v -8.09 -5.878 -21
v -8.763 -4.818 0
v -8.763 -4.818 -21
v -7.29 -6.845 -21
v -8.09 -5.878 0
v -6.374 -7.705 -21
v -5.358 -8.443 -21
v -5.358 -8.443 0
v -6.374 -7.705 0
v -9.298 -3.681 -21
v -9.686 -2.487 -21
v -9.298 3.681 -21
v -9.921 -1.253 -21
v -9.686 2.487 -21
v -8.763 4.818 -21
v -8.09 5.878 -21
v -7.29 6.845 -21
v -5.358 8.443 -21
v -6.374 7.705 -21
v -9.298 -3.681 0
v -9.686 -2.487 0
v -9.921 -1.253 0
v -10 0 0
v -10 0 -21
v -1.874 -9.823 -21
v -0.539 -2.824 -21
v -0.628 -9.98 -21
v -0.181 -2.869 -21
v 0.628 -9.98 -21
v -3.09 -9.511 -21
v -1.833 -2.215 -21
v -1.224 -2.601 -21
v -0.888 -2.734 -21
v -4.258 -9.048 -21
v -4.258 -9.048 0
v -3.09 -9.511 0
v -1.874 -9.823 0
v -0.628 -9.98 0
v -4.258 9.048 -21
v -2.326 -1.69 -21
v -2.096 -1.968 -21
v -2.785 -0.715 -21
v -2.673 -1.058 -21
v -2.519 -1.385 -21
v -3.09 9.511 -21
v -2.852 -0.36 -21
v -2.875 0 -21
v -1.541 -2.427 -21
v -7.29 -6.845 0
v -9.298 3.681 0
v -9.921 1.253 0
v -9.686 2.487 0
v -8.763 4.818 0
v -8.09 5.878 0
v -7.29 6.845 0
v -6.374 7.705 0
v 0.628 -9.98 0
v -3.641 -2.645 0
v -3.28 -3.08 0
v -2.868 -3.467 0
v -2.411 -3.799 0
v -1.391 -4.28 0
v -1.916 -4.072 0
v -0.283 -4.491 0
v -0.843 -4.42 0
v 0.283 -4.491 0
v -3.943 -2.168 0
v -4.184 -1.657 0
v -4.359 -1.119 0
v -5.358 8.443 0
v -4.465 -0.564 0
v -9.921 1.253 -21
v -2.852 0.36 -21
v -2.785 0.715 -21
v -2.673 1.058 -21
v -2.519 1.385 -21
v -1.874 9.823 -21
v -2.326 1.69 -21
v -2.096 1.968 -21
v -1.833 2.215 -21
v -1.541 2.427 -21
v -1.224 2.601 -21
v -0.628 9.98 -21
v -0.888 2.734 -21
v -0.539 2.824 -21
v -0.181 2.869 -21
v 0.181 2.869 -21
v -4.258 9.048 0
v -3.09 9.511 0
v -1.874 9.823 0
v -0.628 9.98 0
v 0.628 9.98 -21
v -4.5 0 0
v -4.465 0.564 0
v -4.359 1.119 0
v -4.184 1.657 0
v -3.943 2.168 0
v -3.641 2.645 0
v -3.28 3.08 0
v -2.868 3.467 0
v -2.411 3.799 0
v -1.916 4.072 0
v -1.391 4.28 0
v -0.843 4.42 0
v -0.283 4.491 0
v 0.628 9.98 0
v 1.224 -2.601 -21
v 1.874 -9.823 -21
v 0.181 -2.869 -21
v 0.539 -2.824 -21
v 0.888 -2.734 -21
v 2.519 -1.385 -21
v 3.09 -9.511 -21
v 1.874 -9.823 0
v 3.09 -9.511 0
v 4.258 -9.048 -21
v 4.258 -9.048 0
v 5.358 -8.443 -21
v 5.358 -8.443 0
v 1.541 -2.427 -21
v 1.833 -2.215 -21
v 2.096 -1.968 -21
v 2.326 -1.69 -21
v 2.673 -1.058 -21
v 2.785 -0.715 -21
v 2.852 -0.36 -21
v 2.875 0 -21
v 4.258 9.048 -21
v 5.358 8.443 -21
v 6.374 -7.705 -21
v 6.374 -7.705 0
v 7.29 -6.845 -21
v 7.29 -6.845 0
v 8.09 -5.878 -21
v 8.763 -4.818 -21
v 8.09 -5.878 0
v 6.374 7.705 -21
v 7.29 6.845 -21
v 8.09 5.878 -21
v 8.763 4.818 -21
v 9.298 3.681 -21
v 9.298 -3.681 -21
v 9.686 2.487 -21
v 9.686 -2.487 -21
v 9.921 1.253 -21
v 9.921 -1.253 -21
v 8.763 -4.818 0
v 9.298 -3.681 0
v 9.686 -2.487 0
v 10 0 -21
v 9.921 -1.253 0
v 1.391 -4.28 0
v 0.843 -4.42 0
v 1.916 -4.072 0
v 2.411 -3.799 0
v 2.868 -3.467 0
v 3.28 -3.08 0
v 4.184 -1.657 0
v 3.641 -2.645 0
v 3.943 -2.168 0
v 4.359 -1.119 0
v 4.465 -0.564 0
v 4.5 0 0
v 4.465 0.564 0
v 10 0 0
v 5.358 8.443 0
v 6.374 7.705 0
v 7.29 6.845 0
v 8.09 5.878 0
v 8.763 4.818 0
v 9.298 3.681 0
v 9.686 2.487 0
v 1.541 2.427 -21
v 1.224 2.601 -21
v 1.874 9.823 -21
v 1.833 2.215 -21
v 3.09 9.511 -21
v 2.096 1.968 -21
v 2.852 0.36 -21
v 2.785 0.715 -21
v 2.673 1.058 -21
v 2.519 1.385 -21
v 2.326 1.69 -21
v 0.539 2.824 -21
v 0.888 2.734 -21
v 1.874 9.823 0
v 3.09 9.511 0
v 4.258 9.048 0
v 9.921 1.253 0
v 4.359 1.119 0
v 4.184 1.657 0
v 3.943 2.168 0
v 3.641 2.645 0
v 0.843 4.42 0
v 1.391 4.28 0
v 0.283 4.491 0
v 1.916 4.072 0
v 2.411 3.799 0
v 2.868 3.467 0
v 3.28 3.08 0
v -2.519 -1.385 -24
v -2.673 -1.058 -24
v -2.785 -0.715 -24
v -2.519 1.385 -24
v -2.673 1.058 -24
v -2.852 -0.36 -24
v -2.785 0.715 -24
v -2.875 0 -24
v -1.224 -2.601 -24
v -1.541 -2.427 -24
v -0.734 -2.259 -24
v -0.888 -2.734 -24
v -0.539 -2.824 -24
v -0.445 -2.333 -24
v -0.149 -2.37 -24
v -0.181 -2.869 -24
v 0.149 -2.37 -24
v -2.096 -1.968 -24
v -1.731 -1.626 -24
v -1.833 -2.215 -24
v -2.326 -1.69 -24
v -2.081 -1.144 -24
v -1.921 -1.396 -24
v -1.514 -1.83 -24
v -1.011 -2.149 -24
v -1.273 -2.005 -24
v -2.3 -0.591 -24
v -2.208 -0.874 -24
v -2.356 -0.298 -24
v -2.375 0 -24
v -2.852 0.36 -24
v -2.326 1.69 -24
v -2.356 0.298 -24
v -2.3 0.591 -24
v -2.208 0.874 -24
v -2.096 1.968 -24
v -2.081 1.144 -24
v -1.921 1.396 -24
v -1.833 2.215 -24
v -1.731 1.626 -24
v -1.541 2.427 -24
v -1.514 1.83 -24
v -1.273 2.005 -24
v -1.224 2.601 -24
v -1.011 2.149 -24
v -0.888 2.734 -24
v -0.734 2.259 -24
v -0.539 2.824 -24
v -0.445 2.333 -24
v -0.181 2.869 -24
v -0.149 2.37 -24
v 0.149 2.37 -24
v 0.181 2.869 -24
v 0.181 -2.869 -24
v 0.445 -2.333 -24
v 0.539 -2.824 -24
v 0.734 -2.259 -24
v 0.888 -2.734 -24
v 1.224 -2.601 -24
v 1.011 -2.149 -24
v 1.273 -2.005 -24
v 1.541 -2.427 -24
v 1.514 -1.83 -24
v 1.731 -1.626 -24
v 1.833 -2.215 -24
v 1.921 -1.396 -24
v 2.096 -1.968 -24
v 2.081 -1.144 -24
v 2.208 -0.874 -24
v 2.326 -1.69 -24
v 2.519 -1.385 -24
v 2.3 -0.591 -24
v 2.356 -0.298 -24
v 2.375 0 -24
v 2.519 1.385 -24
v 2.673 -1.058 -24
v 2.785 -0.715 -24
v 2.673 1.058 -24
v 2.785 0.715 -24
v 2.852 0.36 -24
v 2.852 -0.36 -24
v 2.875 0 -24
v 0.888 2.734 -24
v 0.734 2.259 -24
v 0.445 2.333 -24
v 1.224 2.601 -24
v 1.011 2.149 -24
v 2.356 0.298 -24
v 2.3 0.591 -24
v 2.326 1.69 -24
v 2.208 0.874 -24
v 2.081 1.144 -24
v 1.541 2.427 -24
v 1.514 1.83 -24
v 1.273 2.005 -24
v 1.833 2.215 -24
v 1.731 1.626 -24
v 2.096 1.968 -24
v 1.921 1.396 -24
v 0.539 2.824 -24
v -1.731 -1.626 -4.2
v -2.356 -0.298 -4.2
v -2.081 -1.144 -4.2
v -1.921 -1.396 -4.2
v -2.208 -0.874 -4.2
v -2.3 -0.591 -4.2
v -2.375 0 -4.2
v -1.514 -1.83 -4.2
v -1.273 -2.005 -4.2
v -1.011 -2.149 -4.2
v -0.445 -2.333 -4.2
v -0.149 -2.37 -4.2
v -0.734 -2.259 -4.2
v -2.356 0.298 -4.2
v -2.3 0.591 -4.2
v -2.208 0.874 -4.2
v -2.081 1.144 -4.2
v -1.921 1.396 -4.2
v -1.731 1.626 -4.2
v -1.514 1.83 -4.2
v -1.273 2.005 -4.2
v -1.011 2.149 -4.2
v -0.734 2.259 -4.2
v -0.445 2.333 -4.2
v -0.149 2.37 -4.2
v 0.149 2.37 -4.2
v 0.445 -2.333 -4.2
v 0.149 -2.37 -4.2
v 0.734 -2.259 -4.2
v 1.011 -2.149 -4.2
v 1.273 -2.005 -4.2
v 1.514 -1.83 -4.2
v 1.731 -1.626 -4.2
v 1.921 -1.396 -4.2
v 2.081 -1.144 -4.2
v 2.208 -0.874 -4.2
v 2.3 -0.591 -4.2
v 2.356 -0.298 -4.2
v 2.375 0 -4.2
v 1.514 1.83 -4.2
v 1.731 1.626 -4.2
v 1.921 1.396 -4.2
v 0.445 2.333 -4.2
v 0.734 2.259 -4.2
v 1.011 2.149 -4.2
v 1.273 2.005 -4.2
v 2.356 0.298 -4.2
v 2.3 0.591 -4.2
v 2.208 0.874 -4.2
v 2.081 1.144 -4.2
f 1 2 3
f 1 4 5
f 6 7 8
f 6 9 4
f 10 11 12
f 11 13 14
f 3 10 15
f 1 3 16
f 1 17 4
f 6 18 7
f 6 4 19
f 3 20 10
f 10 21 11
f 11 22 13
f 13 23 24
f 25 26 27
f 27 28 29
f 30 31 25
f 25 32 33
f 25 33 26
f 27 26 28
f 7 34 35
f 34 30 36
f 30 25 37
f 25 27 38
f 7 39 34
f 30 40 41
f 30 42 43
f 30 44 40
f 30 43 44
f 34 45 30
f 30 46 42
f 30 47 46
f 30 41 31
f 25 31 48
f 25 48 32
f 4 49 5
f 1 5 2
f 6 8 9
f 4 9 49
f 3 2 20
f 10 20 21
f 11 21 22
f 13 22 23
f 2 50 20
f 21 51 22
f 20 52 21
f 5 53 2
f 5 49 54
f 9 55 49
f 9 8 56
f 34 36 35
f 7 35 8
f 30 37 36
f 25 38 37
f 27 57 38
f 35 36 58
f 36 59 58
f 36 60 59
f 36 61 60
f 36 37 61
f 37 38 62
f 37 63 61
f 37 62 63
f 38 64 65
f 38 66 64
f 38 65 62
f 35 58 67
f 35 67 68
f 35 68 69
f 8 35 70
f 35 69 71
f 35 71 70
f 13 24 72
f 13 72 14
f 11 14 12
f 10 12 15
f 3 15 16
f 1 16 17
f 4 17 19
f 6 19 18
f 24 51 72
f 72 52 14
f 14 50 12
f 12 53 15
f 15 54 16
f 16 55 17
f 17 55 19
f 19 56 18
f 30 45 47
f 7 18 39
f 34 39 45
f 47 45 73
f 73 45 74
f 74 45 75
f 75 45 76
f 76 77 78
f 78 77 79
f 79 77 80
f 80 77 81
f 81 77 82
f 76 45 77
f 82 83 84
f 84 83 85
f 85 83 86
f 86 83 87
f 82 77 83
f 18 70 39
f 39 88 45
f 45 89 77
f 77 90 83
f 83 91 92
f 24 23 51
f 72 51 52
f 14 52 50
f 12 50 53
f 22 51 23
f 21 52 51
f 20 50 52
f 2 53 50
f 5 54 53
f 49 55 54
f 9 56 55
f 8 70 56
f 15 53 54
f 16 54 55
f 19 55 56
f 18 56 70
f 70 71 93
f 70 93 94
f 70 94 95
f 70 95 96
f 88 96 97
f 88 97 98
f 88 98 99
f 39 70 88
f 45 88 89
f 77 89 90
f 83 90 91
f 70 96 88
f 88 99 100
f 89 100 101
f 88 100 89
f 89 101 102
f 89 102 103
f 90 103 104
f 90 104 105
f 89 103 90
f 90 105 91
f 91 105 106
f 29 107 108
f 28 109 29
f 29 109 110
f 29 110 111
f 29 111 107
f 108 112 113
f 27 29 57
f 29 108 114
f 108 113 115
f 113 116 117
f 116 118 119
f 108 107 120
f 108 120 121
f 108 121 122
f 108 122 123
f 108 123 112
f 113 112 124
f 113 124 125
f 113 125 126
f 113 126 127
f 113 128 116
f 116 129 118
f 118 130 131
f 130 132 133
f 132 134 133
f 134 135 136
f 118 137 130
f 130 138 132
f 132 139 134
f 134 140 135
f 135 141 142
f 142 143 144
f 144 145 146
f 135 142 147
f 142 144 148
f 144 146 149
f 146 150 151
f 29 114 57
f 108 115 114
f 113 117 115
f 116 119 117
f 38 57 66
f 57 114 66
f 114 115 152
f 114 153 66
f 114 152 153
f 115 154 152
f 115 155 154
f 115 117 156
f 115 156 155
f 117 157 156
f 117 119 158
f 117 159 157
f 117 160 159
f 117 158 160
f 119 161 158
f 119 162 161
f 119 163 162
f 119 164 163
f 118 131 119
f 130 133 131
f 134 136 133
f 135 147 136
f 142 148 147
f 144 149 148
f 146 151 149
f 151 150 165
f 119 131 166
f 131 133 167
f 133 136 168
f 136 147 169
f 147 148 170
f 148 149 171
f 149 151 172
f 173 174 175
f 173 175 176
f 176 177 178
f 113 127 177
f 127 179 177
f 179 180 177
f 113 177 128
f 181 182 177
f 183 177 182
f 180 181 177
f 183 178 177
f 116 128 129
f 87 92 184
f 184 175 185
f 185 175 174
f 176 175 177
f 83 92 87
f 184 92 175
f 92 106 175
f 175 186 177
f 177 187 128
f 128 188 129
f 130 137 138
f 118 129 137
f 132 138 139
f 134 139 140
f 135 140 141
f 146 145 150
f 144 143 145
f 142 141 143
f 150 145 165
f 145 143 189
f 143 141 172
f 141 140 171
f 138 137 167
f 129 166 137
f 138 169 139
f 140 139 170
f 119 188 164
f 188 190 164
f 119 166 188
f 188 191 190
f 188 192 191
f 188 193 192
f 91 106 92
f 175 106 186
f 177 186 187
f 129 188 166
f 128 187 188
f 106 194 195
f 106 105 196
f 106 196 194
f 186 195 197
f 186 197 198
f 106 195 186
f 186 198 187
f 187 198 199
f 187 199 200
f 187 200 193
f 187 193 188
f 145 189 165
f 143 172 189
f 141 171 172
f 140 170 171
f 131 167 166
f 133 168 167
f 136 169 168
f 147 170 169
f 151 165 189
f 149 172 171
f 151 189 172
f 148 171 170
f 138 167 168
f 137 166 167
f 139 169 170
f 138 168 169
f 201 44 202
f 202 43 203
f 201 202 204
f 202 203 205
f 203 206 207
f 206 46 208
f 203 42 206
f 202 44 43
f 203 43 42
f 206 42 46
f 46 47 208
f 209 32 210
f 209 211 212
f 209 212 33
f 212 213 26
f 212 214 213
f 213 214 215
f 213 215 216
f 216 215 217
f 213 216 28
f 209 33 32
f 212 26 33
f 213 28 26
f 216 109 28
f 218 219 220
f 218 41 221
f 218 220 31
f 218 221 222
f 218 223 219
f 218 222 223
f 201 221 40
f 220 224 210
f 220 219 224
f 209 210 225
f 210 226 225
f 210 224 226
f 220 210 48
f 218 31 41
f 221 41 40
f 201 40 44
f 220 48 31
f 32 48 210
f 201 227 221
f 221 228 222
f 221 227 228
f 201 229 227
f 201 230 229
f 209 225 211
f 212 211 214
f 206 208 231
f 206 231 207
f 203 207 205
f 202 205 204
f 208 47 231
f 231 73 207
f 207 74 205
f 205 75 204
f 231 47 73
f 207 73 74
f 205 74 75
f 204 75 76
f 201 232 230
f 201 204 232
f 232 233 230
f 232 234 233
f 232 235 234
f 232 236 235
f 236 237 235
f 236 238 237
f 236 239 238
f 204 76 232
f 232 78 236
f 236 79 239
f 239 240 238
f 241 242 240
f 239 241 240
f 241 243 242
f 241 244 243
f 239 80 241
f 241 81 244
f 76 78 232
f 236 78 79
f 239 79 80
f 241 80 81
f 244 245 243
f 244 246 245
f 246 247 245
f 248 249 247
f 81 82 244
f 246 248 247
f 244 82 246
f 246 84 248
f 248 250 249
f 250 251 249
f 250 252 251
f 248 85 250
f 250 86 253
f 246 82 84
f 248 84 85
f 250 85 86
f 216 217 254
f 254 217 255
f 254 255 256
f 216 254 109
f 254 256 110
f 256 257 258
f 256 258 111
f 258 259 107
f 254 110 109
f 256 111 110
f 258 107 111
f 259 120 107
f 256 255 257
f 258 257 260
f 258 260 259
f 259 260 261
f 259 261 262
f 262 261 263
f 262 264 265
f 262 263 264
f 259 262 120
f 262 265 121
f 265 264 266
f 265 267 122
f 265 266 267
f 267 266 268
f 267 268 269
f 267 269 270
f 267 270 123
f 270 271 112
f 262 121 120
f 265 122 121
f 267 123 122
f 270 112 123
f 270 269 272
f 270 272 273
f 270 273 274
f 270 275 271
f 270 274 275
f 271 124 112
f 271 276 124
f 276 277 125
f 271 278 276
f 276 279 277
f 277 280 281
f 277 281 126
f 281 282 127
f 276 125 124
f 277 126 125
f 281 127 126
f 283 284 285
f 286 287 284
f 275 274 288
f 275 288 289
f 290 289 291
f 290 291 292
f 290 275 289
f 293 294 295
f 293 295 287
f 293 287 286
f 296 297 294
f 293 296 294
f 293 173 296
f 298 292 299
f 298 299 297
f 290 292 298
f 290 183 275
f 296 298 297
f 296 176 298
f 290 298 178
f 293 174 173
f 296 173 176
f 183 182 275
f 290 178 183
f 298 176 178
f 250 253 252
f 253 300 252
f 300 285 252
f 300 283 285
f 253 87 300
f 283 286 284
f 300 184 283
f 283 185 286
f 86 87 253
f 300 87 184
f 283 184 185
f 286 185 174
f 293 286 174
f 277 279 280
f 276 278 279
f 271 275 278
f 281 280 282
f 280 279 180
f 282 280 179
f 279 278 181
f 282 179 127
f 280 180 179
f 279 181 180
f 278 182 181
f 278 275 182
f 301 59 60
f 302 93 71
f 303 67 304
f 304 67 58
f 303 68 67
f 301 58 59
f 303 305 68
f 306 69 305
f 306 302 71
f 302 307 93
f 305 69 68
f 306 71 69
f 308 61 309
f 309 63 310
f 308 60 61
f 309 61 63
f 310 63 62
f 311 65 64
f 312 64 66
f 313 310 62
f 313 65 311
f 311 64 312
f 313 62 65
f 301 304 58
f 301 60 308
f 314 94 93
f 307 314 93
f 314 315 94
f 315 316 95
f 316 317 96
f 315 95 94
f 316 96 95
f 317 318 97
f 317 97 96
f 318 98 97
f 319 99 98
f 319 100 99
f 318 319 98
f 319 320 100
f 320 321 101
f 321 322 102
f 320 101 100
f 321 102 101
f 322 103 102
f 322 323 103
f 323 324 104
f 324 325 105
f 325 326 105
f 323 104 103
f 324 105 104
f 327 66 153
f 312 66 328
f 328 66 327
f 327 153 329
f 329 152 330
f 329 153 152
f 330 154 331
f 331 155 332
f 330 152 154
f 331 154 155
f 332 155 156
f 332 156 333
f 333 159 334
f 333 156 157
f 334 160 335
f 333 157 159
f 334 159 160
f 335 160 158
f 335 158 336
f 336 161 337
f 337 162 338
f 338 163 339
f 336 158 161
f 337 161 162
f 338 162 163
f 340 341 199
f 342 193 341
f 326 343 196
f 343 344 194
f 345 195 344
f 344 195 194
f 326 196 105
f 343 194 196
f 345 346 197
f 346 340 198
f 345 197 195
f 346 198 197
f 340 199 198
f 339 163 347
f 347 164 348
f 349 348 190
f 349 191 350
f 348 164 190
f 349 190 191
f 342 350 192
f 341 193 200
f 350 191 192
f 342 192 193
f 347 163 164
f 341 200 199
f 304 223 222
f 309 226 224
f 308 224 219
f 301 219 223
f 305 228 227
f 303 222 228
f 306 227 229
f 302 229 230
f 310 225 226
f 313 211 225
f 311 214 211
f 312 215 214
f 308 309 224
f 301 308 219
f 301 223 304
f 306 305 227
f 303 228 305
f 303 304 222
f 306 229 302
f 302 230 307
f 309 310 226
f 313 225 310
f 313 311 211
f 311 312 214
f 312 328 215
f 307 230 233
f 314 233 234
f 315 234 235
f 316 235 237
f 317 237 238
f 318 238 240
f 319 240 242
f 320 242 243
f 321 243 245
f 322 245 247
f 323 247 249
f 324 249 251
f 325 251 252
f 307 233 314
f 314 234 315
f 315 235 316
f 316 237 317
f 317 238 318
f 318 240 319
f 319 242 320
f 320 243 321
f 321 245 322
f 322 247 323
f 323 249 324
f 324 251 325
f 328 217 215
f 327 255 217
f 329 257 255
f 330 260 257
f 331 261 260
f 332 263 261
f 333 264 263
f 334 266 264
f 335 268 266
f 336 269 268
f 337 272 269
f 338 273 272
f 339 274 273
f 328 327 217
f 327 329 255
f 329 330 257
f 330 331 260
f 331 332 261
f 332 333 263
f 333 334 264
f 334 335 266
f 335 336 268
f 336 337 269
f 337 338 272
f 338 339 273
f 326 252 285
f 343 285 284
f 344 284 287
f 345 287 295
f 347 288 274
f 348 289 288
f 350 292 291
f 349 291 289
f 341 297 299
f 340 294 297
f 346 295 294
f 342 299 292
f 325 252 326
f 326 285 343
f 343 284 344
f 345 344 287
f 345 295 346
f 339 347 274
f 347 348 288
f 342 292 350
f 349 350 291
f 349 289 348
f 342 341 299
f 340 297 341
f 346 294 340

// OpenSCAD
$fn = 50;

difference() {
	union() {
		translate(v = [0, 0, -21.0]) {
			cylinder(h = 21, r = 10.0);
		}
		#translate(v = [0, 0, -24.0]) {
			cylinder(h = 24, r = 2.875);
		}
	}
	union() {
		translate(v = [0, 0, 0]) {
			rotate(a = [0, 0, 0]) {
				difference() {
					union() {
						translate(v = [0, 0, -24.0]) {
							cylinder(h = 24, r = 2.25);
						}
						translate(v = [0, 0, -4.2]) {
							cylinder(h = 4.2, r1 = 2.375, r2 = 4.5);
						}
						translate(v = [0, 0, -24.0]) {
							cylinder(h = 24, r = 2.375);
						}
						translate(v = [0, 0, -24.0]) {
							cylinder(h = 24, r = 2.25);
						}
					}
					union();
				}
			}
		}
	}
}
